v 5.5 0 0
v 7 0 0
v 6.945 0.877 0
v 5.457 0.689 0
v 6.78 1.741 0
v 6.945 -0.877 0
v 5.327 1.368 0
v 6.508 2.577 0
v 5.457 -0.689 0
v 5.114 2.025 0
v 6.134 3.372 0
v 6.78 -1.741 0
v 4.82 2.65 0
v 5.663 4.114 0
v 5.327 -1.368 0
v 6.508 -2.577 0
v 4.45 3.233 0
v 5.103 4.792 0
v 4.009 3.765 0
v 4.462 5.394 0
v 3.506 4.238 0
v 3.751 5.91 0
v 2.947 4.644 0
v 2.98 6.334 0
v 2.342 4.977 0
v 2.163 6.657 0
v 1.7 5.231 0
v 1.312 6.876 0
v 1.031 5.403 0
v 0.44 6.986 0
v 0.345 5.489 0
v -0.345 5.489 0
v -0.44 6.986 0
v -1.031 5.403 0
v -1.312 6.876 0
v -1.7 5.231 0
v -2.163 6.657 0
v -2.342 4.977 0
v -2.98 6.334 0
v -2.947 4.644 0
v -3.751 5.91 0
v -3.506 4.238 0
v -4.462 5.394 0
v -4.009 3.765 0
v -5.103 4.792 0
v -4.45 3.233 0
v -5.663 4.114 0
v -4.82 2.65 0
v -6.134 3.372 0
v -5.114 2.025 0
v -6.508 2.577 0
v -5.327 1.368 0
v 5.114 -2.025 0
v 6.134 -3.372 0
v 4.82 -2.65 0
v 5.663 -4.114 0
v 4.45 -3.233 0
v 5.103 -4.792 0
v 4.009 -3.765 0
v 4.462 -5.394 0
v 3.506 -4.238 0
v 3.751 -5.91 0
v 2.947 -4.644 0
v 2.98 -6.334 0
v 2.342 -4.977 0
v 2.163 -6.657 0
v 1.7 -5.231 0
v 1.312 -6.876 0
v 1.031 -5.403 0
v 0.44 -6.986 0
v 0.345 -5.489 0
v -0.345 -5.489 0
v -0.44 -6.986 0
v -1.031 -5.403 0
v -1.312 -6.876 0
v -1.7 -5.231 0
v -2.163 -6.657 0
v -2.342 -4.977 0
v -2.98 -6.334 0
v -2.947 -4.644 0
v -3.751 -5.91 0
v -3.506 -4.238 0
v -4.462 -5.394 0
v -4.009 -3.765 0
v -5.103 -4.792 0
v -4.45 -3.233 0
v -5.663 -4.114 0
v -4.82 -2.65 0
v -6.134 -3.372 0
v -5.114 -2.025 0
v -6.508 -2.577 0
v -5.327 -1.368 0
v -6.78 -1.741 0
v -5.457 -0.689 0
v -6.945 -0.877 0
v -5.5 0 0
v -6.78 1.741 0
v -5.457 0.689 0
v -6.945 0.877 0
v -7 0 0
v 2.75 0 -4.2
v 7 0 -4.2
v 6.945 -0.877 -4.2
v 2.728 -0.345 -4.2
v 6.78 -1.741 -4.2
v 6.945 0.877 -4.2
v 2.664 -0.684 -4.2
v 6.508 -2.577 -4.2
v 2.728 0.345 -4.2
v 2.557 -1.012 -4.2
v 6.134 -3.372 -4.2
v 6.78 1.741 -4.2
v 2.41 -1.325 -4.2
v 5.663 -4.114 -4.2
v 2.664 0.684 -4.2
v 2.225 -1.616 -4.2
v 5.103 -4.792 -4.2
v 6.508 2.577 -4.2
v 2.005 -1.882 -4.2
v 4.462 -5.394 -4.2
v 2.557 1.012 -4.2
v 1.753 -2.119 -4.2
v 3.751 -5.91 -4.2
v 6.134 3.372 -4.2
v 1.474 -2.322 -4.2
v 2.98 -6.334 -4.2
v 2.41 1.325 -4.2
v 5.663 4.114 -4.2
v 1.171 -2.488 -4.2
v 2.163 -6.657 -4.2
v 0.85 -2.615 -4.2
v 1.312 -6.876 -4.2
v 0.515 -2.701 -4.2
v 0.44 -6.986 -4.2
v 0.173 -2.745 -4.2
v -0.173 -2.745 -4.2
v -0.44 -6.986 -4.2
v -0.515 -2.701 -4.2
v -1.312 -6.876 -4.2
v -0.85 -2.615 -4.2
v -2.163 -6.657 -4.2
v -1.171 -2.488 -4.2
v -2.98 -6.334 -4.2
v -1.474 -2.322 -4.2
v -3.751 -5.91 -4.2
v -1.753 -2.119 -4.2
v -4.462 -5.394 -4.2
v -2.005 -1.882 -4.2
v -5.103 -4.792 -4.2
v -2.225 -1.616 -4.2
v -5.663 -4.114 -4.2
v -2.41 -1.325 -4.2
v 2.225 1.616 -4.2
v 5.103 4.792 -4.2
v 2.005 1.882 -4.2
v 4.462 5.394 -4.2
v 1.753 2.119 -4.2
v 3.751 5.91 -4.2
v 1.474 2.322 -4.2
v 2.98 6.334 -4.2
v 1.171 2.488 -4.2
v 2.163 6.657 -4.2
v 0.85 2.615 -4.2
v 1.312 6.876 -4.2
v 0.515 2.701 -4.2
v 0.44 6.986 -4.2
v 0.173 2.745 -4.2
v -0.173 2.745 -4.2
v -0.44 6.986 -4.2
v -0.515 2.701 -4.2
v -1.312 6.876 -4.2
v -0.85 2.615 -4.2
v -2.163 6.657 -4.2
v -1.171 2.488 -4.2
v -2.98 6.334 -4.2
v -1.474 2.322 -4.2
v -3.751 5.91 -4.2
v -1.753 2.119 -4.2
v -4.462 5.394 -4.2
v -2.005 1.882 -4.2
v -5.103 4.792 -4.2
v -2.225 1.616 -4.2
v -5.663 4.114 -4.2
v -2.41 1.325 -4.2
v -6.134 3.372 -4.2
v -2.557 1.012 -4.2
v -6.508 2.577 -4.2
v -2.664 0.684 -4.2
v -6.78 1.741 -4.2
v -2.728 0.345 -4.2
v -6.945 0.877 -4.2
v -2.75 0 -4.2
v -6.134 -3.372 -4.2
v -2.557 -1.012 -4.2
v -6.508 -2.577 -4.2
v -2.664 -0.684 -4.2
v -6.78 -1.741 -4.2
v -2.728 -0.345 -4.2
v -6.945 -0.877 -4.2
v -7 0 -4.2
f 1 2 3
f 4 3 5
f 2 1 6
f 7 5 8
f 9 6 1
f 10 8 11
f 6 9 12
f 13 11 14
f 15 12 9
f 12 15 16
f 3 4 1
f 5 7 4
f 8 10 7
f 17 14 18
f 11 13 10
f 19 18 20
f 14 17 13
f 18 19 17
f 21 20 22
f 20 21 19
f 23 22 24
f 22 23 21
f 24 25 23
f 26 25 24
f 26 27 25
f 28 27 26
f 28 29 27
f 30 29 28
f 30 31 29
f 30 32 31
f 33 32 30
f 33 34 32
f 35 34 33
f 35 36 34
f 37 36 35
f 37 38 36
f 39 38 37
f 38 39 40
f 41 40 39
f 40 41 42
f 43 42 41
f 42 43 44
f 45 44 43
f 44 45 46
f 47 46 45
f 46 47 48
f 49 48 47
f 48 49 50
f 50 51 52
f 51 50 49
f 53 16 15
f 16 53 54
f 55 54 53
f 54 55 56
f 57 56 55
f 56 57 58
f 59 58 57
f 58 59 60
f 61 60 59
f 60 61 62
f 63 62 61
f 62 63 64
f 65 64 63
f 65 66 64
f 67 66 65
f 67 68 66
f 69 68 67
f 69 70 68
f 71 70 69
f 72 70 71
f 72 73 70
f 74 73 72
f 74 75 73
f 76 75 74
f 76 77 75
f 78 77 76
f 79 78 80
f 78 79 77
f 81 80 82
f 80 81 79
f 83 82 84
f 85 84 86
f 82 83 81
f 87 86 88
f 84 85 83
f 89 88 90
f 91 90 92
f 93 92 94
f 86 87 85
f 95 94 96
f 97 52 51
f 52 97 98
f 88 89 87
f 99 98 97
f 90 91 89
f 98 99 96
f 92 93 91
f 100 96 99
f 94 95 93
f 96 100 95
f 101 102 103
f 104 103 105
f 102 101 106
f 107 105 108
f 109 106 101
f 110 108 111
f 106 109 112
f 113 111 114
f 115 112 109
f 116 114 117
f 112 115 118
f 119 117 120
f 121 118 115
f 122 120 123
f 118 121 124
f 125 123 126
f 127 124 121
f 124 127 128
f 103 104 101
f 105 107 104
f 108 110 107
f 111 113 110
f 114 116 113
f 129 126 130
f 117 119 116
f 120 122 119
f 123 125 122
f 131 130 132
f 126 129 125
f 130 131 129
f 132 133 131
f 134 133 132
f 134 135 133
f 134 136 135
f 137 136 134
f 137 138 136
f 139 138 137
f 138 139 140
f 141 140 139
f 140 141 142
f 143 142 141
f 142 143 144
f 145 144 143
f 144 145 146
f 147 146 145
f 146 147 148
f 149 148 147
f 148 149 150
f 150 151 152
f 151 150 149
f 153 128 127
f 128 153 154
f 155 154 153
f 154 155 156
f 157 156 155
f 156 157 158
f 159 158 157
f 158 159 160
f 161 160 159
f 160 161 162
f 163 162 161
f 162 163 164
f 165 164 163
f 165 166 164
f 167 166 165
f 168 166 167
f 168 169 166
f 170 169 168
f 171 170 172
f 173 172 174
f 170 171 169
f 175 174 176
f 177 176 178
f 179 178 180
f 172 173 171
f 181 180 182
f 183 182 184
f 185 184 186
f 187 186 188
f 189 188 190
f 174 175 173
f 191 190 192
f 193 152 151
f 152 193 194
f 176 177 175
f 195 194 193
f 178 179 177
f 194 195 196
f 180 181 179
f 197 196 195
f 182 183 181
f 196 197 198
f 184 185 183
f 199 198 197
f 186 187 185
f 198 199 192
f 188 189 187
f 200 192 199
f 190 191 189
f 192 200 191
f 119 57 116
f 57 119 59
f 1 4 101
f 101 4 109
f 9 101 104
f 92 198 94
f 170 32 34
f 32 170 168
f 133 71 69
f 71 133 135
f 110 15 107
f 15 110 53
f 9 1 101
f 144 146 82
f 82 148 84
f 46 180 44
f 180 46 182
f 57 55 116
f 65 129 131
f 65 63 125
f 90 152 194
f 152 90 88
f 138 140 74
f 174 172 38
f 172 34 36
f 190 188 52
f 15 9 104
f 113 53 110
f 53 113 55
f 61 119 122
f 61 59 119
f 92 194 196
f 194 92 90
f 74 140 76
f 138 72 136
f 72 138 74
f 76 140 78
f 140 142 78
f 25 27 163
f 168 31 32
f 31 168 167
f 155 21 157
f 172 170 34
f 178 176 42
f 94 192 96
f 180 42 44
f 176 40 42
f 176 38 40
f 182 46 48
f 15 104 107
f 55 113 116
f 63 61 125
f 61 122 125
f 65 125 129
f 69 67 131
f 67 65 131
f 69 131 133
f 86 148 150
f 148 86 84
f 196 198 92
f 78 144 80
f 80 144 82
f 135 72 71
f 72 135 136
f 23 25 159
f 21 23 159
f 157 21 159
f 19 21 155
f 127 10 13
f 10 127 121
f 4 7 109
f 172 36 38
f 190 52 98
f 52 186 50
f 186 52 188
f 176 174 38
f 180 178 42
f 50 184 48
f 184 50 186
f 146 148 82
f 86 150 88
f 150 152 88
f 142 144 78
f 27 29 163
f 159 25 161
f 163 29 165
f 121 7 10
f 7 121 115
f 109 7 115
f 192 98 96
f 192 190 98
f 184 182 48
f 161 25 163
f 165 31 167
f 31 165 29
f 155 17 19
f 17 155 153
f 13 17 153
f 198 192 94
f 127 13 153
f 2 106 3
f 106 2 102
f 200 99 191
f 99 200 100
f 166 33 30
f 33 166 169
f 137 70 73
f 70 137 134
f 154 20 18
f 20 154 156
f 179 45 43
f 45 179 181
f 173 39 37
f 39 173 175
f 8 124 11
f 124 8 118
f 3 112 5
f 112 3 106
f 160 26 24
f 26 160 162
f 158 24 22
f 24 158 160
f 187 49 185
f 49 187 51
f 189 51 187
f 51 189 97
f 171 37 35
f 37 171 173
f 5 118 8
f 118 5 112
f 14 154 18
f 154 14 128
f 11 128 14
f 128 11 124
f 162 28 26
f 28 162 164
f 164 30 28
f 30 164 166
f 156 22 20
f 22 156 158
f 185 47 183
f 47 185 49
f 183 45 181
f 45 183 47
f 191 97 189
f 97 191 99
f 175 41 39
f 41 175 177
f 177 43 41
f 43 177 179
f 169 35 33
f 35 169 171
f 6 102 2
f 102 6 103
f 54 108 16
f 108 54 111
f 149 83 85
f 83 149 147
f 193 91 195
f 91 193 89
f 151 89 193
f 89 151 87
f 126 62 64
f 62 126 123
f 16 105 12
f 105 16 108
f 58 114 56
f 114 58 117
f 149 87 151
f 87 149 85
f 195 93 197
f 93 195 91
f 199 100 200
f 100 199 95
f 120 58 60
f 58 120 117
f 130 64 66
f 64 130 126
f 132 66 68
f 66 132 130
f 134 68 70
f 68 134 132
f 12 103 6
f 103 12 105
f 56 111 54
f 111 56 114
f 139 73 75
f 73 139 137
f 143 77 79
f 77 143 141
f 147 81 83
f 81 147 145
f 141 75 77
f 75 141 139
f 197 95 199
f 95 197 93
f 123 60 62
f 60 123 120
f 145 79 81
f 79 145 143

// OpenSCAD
$fn = 50;


difference() {
	union() {
		translate(v = [0, 0, -4.2000000000]) {
			cylinder(h = 4.2000000000, r = 7.0000000000);
		}
	}
	union() {
		translate(v = [0, 0, 0]) {
			rotate(a = [0, 0, 0]) {
				difference() {
					union() {
						#translate(v = [0, 0, -4.2000000000]) {
							cylinder(h = 4.2000000000, r = 2.2500000000);
						}
						#translate(v = [0, 0, -4.2000000000]) {
							cylinder(h = 4.2000000000, r1 = 2.7500000000, r2 = 5.5000000000);
						}
						#translate(v = [0, 0, -4.2000000000]) {
							cylinder(h = 4.2000000000, r = 2.7500000000);
						}
						#translate(v = [0, 0, -4.2000000000]) {
							cylinder(h = 4.2000000000, r = 2.2500000000);
						}
					}
					union();
				}
			}
		}
	}
}
